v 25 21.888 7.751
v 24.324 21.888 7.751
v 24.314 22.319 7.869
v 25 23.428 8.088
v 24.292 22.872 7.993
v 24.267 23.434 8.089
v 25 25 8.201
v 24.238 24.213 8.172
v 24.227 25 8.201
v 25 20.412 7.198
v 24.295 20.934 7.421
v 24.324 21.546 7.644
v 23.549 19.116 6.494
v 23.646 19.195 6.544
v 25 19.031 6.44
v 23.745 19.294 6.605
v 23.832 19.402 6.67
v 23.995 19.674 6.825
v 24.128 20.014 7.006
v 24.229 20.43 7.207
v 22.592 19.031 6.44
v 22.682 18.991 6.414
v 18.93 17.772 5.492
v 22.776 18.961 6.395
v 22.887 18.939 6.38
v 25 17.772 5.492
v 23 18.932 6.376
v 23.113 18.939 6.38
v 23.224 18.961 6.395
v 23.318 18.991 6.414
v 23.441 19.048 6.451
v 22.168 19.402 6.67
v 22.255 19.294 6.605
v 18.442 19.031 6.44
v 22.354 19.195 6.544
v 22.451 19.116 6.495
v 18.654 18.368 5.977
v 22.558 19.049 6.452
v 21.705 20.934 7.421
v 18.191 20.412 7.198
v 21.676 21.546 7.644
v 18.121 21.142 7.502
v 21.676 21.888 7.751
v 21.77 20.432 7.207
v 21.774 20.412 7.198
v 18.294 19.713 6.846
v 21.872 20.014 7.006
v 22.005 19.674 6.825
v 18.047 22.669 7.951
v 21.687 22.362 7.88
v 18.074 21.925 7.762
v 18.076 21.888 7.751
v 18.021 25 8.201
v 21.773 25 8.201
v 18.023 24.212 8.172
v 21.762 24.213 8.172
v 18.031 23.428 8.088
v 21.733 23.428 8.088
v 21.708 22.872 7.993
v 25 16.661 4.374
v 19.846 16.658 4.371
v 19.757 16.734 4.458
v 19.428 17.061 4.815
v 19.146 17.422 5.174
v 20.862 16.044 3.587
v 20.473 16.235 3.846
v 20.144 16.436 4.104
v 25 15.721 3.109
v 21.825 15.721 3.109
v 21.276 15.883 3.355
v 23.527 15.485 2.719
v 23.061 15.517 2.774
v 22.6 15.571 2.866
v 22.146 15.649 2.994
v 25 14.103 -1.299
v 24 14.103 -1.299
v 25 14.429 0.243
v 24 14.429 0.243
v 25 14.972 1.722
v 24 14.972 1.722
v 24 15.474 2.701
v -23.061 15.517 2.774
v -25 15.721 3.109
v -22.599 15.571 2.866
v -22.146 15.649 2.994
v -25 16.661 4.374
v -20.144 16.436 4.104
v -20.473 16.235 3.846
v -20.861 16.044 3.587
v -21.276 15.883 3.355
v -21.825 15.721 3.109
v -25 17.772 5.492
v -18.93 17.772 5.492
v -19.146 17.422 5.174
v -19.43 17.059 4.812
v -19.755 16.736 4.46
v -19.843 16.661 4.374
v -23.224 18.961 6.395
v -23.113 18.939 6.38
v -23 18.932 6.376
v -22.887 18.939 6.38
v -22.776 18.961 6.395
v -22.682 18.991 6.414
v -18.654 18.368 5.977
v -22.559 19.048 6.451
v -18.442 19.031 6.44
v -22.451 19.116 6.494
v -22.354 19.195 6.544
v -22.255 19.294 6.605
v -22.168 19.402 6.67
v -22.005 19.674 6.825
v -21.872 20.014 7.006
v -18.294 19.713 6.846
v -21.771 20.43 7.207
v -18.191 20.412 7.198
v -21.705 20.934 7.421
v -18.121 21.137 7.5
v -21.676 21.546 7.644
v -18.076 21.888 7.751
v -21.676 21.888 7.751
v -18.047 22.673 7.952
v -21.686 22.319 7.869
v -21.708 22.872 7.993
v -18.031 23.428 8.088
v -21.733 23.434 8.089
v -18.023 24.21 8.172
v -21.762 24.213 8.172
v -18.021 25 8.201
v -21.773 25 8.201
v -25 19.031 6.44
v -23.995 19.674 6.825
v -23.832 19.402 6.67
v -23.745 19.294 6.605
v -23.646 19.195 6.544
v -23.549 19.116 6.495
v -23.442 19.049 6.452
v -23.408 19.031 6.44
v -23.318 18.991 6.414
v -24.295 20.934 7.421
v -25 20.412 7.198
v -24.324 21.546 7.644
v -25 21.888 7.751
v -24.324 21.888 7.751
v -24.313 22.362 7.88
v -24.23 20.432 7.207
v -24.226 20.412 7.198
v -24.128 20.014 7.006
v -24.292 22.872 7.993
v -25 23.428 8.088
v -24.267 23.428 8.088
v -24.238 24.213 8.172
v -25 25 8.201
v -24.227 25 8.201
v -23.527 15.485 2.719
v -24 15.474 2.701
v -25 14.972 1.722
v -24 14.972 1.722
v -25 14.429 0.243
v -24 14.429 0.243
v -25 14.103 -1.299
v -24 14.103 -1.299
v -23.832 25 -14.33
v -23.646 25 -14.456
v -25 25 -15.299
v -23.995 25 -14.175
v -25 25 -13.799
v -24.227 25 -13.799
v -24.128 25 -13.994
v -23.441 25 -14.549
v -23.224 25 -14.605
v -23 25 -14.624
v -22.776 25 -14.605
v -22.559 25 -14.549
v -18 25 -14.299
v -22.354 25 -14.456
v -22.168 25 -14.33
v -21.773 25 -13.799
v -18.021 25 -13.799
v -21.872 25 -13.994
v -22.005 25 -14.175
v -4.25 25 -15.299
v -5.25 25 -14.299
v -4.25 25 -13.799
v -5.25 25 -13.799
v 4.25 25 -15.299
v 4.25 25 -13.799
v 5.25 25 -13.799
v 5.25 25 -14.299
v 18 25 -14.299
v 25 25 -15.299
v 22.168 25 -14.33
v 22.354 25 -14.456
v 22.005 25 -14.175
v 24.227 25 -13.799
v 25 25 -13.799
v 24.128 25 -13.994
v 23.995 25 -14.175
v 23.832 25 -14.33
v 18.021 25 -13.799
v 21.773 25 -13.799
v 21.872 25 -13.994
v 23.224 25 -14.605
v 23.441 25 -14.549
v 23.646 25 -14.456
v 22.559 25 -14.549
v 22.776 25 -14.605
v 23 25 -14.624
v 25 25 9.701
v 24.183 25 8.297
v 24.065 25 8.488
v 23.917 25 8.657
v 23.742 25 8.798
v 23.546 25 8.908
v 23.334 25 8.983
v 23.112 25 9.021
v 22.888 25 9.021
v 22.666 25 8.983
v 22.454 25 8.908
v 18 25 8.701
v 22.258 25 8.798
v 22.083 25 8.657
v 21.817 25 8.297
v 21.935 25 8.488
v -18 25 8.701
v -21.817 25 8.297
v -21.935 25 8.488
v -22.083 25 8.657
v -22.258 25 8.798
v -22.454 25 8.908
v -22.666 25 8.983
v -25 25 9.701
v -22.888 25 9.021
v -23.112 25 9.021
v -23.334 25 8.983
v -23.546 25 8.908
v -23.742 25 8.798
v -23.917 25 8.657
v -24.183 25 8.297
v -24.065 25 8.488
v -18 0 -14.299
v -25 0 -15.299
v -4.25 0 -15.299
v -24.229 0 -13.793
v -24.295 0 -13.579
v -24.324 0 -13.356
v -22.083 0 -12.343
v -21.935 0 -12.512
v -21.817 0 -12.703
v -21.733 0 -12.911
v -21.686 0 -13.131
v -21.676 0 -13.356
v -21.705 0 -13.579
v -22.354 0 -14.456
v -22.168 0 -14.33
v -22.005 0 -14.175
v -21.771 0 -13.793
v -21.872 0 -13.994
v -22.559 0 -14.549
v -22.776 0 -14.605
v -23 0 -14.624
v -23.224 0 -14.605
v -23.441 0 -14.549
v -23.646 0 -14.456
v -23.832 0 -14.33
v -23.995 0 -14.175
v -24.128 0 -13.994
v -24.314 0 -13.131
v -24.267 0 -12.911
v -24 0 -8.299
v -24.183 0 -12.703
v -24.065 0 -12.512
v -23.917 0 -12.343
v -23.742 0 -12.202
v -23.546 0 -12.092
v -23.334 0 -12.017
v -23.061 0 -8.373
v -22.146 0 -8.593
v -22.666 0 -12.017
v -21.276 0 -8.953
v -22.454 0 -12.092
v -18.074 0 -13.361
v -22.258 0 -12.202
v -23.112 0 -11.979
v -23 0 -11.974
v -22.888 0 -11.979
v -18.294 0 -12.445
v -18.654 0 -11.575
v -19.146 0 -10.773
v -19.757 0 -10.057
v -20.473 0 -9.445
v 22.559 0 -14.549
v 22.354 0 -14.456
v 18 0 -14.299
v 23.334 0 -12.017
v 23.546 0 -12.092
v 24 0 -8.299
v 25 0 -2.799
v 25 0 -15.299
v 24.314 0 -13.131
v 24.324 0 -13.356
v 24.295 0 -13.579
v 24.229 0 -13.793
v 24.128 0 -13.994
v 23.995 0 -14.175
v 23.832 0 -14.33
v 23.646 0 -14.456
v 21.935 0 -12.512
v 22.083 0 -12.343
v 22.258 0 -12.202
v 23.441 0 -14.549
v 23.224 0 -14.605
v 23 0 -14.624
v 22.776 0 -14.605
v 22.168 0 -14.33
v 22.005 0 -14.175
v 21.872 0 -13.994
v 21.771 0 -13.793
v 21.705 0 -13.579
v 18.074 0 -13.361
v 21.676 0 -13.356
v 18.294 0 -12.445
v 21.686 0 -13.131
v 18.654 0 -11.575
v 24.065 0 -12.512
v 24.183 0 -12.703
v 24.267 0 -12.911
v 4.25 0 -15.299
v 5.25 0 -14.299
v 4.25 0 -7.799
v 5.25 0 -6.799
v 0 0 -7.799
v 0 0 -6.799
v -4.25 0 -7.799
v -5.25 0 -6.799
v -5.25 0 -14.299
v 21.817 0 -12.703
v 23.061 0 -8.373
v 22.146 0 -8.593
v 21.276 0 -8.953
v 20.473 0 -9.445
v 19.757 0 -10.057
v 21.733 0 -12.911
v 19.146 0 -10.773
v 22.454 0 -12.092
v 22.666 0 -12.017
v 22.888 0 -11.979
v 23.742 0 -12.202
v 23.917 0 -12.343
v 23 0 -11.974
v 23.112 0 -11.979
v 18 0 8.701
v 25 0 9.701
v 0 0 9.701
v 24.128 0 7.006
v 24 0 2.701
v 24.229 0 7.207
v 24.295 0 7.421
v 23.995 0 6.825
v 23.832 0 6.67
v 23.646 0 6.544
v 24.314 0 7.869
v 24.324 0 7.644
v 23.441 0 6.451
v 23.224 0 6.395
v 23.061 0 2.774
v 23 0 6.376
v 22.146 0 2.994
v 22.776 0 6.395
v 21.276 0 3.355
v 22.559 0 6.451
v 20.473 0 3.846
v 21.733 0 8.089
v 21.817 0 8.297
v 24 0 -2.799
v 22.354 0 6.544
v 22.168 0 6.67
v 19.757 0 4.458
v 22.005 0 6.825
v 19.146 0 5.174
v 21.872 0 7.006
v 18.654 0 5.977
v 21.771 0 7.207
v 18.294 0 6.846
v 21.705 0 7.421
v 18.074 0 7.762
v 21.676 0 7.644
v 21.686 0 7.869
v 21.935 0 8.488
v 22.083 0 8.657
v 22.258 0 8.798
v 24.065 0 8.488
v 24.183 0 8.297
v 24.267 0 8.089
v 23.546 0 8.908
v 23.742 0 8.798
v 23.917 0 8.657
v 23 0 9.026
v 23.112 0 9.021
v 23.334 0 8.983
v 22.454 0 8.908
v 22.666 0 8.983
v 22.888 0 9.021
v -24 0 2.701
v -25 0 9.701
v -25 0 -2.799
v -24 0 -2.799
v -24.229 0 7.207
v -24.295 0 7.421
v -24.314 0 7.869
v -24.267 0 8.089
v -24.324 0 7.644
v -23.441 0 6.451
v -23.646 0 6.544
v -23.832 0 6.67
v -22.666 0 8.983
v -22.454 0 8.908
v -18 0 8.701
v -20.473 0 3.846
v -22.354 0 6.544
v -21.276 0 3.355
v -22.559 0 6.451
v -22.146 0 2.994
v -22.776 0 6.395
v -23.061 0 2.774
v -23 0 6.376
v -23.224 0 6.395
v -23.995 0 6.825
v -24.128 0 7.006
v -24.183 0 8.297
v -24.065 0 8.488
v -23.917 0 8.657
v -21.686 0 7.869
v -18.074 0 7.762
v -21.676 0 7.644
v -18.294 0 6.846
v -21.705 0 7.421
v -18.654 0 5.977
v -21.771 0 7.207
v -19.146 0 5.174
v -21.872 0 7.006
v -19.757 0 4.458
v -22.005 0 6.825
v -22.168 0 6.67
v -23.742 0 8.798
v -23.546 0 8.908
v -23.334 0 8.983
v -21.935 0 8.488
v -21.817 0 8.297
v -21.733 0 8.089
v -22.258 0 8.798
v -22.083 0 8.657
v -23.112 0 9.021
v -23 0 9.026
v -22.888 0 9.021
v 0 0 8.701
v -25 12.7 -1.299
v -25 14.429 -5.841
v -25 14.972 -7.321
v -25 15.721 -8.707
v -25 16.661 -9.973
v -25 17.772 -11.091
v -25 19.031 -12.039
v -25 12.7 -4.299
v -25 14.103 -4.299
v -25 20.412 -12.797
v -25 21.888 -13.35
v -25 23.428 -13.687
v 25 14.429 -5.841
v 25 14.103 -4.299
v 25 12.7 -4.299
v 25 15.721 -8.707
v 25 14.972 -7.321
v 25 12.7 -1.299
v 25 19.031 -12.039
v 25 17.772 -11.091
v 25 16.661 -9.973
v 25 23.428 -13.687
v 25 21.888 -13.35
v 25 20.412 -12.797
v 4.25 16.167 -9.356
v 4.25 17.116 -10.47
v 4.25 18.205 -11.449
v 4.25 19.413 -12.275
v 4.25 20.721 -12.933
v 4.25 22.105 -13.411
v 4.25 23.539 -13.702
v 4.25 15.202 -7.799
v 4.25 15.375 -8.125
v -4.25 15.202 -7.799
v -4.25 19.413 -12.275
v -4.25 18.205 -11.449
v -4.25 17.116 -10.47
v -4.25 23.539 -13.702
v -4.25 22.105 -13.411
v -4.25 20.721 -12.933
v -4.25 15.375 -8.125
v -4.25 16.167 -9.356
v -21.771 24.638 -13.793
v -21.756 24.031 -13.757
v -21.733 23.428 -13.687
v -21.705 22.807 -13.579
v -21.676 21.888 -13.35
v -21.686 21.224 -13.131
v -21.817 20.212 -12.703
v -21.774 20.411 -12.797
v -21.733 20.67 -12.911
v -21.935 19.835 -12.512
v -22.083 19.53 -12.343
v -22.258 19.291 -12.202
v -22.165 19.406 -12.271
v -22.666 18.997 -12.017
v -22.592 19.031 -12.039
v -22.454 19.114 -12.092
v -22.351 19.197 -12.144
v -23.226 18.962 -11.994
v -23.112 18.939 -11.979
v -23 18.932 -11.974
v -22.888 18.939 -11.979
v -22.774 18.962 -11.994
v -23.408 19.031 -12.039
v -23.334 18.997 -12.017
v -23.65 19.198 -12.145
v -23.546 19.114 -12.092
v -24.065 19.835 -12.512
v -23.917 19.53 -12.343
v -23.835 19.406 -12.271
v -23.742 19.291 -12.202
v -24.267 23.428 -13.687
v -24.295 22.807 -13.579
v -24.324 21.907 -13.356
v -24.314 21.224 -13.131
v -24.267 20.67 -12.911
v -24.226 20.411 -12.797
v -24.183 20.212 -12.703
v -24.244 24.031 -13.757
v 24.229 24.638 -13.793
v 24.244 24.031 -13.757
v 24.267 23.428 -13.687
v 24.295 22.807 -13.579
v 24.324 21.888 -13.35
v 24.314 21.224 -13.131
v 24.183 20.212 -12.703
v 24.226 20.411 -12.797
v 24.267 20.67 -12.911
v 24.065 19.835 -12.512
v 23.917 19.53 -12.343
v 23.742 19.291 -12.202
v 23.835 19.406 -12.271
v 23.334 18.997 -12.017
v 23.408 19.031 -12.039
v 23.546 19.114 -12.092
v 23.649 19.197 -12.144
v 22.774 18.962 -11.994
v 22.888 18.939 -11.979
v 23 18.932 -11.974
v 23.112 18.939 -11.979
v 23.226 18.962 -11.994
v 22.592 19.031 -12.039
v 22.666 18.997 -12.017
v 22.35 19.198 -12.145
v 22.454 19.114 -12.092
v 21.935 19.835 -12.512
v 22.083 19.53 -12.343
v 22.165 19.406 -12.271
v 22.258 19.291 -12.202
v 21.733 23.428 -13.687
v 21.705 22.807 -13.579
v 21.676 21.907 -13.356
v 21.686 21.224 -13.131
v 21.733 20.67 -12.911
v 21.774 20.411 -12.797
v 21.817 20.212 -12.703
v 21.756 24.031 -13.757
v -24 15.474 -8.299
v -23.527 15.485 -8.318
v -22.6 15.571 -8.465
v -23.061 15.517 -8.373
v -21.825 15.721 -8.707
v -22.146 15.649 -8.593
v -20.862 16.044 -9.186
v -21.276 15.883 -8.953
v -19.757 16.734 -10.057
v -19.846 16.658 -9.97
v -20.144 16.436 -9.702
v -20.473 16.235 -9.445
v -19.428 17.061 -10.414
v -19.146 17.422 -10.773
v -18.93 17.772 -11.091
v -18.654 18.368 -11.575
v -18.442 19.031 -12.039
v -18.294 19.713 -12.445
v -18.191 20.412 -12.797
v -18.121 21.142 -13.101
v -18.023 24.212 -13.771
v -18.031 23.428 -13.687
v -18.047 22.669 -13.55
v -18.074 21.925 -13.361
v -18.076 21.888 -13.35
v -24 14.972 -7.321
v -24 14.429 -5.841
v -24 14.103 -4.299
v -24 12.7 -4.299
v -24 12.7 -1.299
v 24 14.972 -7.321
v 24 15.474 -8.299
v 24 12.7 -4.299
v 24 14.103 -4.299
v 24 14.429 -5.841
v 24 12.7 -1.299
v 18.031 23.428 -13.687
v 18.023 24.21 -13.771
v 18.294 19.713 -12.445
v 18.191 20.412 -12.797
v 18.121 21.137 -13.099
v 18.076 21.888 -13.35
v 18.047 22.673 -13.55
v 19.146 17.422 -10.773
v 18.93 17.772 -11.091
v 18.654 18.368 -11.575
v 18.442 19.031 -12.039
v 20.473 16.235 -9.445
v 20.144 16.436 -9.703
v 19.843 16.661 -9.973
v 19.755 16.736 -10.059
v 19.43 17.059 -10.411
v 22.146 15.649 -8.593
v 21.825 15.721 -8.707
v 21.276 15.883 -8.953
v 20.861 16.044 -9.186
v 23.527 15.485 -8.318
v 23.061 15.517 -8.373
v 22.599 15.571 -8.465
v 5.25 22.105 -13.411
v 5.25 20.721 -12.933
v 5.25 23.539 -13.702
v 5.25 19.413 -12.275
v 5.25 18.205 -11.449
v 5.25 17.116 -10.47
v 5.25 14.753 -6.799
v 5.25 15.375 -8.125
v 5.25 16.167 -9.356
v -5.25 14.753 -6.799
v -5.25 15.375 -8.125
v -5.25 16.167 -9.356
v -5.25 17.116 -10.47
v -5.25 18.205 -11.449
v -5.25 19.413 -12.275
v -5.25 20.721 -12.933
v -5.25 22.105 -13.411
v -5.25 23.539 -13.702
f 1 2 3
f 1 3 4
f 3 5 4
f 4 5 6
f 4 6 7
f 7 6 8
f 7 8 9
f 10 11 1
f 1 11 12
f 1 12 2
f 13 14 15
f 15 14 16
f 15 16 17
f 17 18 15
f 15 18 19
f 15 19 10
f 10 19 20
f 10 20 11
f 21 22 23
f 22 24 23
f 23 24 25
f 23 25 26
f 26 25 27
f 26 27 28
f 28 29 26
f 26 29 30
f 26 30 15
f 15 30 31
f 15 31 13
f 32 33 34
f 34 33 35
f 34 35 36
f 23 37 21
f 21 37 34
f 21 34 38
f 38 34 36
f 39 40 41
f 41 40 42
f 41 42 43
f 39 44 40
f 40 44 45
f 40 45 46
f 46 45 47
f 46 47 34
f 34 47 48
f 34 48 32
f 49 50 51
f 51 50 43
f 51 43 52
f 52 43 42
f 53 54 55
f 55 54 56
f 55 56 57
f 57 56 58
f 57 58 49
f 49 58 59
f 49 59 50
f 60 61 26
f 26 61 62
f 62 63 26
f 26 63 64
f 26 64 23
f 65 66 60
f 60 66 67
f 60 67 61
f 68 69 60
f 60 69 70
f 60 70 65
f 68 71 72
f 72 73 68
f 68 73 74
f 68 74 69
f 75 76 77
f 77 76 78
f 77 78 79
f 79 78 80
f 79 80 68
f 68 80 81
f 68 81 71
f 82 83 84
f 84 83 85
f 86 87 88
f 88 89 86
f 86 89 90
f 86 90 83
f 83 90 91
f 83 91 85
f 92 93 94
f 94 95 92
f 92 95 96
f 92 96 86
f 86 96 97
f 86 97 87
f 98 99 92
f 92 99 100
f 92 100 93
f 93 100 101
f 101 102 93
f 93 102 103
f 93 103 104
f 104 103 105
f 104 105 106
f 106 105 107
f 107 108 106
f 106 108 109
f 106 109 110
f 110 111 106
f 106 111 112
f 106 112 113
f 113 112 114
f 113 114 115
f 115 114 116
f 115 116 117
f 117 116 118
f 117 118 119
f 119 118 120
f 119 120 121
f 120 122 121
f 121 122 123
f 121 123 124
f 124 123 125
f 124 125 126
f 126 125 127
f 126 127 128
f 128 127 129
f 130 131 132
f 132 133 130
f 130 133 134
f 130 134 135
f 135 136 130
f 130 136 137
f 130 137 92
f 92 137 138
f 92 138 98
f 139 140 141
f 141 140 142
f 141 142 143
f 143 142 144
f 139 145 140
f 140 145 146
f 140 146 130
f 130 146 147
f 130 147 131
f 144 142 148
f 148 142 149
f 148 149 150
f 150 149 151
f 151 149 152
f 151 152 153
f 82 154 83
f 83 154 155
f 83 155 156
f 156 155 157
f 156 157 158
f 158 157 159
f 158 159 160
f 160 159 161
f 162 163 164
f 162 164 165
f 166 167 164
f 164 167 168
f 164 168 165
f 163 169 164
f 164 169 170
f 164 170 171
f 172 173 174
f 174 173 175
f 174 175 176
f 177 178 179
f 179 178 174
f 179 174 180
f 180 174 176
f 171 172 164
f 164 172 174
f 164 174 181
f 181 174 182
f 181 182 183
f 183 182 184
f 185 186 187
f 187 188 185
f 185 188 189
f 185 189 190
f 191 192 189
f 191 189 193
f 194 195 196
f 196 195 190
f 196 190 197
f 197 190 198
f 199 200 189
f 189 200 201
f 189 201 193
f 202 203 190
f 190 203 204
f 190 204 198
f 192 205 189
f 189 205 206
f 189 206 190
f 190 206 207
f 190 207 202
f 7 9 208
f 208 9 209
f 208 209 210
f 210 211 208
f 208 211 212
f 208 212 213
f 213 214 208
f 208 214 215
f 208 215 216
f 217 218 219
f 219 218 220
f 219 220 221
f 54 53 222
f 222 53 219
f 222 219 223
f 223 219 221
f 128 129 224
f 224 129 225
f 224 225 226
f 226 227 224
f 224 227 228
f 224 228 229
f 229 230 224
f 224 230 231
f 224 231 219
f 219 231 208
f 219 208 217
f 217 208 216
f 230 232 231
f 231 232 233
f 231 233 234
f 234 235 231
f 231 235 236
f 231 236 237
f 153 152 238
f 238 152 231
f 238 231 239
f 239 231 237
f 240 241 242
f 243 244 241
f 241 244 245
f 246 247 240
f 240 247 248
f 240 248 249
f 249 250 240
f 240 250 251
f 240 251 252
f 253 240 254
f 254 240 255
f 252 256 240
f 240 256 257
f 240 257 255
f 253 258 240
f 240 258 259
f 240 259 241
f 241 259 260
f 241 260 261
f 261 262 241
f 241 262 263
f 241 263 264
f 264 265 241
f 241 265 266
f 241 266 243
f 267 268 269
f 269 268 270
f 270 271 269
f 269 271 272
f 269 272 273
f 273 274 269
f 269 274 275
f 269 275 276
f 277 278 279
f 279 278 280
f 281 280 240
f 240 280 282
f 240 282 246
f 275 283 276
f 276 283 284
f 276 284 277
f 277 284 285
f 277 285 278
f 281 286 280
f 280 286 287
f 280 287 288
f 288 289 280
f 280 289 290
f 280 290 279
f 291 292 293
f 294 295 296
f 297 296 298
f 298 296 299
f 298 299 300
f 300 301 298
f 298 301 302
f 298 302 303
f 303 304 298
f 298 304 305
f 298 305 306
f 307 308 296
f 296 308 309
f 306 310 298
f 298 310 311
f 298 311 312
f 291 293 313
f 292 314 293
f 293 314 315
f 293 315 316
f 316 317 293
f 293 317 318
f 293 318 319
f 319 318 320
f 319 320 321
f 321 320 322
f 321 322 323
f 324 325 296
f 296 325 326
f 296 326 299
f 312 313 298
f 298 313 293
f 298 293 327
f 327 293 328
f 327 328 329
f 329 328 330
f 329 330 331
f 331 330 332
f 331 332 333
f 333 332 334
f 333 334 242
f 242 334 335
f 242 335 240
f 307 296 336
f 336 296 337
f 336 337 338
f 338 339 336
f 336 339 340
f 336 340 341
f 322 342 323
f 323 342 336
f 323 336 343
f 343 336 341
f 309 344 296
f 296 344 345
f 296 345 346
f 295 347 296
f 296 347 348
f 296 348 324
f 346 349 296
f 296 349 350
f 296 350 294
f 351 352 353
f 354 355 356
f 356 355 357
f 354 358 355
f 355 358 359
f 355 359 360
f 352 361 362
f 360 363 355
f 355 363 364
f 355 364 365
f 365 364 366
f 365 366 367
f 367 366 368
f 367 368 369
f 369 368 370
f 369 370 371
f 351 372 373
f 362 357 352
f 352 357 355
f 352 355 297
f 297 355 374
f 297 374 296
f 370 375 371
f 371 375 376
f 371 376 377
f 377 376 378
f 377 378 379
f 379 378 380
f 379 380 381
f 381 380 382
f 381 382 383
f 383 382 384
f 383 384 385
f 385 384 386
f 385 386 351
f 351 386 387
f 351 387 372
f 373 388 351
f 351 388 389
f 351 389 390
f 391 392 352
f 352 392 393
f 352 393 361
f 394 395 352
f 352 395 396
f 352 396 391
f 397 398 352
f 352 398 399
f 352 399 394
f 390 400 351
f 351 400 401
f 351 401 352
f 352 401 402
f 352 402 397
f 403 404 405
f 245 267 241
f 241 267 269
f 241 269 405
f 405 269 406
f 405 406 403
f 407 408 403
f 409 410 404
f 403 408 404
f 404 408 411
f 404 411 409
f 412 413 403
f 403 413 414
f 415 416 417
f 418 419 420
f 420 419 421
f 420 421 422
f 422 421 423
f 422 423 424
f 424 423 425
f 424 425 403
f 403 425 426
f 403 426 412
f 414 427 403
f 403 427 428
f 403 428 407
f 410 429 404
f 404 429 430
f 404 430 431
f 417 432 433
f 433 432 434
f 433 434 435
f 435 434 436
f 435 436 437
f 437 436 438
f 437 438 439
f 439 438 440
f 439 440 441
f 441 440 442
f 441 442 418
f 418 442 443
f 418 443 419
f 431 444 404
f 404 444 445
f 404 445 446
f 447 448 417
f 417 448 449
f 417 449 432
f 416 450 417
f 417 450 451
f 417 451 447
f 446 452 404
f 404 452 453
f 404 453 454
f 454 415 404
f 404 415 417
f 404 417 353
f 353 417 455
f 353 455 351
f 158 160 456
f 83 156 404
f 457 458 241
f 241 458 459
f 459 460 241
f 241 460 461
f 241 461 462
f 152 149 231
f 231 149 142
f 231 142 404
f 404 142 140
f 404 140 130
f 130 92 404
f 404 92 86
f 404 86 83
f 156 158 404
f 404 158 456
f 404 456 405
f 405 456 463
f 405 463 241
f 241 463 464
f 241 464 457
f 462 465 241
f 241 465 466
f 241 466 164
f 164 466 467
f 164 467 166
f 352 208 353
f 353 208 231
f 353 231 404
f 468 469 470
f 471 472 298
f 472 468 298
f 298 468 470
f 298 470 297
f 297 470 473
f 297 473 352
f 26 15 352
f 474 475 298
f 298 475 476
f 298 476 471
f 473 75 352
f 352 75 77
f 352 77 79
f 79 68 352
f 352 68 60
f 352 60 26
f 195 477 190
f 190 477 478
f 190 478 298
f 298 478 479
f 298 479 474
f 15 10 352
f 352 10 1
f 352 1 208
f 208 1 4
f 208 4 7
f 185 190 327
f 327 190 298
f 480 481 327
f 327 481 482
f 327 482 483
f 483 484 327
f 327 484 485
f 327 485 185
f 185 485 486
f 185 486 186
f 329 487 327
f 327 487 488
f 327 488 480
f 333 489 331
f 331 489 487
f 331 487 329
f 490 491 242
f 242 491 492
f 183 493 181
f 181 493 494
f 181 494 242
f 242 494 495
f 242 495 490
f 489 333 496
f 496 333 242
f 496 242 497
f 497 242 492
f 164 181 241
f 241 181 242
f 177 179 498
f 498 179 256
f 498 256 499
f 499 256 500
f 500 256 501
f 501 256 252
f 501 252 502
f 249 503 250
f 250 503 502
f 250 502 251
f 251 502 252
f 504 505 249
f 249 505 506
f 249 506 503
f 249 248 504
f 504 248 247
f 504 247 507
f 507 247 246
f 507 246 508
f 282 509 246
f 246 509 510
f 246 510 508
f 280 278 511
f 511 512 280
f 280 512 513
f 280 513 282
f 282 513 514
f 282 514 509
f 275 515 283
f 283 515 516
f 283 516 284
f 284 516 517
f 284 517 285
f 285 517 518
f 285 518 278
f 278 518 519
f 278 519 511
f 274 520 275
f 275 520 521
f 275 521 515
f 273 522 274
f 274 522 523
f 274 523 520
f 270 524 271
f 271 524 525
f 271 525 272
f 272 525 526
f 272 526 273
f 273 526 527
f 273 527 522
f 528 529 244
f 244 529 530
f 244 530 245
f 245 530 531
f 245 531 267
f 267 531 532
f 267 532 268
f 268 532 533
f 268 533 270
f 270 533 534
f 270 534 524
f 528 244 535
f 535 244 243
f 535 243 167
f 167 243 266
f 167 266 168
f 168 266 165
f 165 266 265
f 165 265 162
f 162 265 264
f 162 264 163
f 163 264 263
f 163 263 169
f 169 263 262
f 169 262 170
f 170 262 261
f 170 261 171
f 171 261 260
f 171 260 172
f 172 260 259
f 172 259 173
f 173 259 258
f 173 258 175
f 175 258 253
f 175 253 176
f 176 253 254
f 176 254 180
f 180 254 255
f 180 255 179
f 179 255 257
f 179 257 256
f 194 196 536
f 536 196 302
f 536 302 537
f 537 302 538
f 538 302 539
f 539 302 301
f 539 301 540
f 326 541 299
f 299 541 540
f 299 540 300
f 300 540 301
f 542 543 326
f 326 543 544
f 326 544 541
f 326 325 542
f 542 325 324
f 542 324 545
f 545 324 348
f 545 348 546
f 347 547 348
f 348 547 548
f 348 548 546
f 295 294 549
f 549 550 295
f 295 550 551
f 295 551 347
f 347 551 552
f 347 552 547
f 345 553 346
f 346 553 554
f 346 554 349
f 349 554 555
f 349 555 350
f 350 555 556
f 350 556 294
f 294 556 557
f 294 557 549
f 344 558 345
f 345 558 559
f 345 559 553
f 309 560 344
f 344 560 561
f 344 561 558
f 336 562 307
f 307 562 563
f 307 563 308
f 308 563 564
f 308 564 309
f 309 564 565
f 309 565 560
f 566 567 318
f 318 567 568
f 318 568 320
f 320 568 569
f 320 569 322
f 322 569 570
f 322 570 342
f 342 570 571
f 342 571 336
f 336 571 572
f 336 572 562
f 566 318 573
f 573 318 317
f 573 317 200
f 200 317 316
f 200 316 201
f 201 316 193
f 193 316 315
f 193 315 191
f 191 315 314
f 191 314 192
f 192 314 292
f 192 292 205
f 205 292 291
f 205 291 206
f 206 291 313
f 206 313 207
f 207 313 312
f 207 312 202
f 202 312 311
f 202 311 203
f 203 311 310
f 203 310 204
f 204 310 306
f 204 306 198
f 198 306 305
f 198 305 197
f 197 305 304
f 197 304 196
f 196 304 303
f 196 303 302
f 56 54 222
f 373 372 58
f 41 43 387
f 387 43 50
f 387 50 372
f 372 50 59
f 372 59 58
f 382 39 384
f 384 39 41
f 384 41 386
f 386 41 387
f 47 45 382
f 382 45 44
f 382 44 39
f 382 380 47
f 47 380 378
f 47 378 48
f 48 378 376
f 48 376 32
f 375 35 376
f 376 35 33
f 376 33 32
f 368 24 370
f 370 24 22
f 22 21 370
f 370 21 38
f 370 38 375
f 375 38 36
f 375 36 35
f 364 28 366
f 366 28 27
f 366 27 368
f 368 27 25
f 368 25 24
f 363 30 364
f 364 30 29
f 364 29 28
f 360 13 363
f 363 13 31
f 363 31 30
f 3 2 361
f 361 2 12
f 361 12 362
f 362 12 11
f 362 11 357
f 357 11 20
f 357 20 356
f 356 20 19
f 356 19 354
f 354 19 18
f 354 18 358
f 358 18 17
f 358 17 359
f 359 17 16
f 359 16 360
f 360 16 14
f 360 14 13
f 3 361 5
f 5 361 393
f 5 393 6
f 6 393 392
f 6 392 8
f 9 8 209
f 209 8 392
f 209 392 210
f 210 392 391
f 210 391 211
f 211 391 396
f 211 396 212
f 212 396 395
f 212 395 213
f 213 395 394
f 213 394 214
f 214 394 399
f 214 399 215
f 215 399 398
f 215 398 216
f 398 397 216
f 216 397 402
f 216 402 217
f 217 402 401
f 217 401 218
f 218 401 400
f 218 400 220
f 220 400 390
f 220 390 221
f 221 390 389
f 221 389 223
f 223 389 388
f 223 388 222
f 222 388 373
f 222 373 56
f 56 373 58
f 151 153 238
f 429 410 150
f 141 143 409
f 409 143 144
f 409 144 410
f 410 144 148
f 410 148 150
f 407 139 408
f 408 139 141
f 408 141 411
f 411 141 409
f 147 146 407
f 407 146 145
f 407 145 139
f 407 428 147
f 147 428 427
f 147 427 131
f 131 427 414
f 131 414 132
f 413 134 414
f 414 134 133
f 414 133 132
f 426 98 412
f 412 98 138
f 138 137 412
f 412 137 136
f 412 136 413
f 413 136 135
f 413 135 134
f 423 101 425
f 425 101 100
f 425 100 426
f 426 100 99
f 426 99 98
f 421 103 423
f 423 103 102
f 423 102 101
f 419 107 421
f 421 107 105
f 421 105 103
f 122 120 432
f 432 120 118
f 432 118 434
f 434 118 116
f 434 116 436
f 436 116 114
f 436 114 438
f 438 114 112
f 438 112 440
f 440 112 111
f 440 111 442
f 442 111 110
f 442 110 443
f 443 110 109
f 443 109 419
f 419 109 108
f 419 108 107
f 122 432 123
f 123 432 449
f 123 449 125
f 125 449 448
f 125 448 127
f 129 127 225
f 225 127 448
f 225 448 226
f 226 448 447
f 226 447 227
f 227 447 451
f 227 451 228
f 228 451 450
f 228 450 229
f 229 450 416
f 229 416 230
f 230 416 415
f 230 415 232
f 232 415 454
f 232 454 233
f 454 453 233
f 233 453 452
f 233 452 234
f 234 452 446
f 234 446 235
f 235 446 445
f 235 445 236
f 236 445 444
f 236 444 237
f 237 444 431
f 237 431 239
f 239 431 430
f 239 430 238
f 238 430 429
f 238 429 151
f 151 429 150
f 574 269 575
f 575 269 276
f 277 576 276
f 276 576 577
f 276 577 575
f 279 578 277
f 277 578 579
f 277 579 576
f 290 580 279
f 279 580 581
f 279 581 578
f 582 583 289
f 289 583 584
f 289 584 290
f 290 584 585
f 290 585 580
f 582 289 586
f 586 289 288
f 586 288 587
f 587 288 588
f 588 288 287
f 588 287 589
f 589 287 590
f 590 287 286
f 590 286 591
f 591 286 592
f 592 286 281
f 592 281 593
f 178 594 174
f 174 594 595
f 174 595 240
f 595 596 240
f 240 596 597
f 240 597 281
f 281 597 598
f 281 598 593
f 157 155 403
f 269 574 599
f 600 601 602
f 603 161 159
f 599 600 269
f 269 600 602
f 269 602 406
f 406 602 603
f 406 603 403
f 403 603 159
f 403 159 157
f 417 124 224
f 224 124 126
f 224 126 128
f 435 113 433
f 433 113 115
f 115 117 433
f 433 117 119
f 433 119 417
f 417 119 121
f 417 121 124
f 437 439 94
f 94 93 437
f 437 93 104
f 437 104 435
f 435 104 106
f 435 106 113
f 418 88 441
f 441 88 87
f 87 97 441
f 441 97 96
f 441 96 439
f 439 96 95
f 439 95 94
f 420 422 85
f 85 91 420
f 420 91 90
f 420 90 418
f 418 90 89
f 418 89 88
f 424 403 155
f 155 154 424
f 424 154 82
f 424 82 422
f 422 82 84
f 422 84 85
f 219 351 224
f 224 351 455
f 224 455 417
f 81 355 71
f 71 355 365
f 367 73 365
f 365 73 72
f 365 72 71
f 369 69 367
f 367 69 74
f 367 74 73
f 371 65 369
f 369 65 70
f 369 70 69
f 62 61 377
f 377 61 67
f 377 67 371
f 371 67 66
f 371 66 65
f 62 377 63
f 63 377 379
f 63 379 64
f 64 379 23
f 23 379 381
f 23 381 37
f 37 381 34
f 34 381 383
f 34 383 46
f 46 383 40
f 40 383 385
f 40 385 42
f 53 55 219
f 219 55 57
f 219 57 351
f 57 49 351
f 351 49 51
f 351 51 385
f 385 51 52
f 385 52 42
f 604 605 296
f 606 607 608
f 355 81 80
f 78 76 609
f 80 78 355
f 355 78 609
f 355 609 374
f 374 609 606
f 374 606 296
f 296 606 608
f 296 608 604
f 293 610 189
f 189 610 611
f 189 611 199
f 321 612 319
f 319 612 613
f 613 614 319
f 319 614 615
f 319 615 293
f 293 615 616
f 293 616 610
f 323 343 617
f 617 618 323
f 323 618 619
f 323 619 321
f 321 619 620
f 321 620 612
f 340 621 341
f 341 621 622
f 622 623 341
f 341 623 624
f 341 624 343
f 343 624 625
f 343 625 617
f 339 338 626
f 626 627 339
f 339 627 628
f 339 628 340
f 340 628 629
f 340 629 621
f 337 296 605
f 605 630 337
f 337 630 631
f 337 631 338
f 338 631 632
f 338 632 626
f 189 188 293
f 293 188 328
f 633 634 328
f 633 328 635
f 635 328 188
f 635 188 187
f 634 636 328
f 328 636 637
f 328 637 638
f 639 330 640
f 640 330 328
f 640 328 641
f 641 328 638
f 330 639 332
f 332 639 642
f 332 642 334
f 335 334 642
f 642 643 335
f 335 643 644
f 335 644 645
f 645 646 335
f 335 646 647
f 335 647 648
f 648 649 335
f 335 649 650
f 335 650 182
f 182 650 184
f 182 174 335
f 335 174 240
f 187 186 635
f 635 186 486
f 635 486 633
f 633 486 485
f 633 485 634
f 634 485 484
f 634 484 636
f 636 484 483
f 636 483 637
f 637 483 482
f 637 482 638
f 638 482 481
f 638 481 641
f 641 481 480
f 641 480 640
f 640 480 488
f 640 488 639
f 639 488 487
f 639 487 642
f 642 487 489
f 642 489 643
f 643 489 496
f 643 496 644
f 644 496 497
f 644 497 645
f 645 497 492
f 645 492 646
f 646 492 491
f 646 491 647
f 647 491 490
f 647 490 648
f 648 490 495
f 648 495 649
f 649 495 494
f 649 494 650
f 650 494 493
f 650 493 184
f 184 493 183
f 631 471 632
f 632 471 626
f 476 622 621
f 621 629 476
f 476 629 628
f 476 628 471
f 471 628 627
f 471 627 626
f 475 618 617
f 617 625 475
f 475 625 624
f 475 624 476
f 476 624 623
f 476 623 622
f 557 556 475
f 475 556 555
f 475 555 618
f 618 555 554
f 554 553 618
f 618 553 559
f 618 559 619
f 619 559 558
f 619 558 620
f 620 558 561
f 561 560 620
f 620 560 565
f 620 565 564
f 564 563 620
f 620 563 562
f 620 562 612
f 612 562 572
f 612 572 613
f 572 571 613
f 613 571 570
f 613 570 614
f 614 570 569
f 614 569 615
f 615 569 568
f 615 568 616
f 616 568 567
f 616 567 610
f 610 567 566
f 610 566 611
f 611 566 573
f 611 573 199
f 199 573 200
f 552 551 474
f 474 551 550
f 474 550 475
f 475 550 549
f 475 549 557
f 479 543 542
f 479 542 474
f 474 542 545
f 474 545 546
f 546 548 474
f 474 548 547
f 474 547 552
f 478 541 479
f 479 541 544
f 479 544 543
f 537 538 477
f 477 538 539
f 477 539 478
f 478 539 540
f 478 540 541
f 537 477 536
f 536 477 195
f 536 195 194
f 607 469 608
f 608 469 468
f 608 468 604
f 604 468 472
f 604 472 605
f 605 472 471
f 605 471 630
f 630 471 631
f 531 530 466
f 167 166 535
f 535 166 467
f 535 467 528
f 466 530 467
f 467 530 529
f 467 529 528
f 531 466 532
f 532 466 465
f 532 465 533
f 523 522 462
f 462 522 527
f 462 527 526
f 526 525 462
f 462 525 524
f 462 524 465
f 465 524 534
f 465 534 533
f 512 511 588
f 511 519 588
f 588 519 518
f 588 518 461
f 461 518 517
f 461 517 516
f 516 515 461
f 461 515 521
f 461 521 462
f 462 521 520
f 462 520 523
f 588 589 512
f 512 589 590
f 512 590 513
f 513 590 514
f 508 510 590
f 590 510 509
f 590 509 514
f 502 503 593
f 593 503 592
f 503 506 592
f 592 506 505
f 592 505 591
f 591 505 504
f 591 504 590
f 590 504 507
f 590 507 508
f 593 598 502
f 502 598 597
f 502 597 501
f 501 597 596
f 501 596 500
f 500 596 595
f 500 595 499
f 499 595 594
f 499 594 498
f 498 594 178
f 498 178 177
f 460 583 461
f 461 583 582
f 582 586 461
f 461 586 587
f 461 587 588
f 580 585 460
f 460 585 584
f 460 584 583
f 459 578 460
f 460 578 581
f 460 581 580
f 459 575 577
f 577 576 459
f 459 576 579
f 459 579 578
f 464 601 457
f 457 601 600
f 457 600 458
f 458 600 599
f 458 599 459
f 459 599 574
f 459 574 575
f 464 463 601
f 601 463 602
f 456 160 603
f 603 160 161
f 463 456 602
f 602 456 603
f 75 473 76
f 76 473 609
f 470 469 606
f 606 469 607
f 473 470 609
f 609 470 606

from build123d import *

# Parameters (mm, degrees)
SKETCH1_R           = 1.325
BOSS_EXTRUDE1_DEPTH = 25
SKETCH3_R           = 11
CUT_EXTRUDE1_DEPTH  = 58.957500418
SKETCH4_W           = 3
SKETCH4_H           = 1.5
CUT_EXTRUDE2_DEPTH  = 58.957500548


with BuildPart() as part:
    # Sketch1 → Boss-Extrude1 (new body)
    with BuildSketch(Plane(origin=(0, 0, 0), x_dir=(1, 0, 0), z_dir=(0, 1, 0))):
        Polygon((-25, -9.700592993), (25, -9.700592993), (25, 15.299407007), (4.25, 15.299407007), (4.25, 7.799407007), (-4.25, 7.799407007), (-4.25, 15.299407007), (-25, 15.299407007), align=None)
        with Locations(Location((-23, 13.299407007, 0), (0, 0, 270))):
            Circle(SKETCH1_R, mode=Mode.SUBTRACT)
        with Locations(Location((23, 13.299407007, 0), (0, 0, 270))):
            Circle(SKETCH1_R, mode=Mode.SUBTRACT)
        with Locations(Location((23, -7.700592993, 0), (0, 0, 270))):
            Circle(SKETCH1_R, mode=Mode.SUBTRACT)
        with Locations(Location((-23, -7.700592993, 0), (0, 0, 270))):
            Circle(SKETCH1_R, mode=Mode.SUBTRACT)
        with BuildLine():
            Line((-5.25, 14.299407007), (-5.25, 6.799407007))
            Line((-5.25, 6.799407007), (5.25, 6.799407007))
            Line((5.25, 6.799407007), (5.25, 14.299407007))
            Line((5.25, 14.299407007), (18, 14.299407007))
            ThreePointArc((18, 14.299407007), (19.757359313, 10.05676632), (24, 8.299407007))
            Line((24, 8.299407007), (24, -2.700592993))
            ThreePointArc((24, -2.700592993), (19.757359313, -4.457952306), (18, -8.700592993))
            Line((18, -8.700592993), (-18, -8.700592993))
            ThreePointArc((-18, -8.700592993), (-19.757359313, -4.457952306), (-24, -2.700592993))
            Line((-24, -2.700592993), (-24, 8.299407007))
            ThreePointArc((-24, 8.299407007), (-19.757359313, 10.05676632), (-18, 14.299407007))
            Line((-18, 14.299407007), (-5.25, 14.299407007))
        make_face(mode=Mode.SUBTRACT)
    extrude(amount=BOSS_EXTRUDE1_DEPTH)

    # Sketch3 → Cut-Extrude1 (cut, through all)
    with BuildSketch(Plane(origin=(25, 0, 0), x_dir=(0, 0, -1), z_dir=(1, 0, 0))):
        with Locations((2.799407007, 25)):
            Circle(SKETCH3_R)
    extrude(amount=-CUT_EXTRUDE1_DEPTH, mode=Mode.SUBTRACT)

    # Sketch4 → Cut-Extrude2 (cut, through all)
    with BuildSketch(Plane(origin=(25, 0, 0), x_dir=(0, 0, -1), z_dir=(1, 0, 0))):
        with Locations((2.799407007, 13.45)):
            Rectangle(SKETCH4_W, SKETCH4_H)
    extrude(amount=-CUT_EXTRUDE2_DEPTH, mode=Mode.SUBTRACT)


solid = part.part
